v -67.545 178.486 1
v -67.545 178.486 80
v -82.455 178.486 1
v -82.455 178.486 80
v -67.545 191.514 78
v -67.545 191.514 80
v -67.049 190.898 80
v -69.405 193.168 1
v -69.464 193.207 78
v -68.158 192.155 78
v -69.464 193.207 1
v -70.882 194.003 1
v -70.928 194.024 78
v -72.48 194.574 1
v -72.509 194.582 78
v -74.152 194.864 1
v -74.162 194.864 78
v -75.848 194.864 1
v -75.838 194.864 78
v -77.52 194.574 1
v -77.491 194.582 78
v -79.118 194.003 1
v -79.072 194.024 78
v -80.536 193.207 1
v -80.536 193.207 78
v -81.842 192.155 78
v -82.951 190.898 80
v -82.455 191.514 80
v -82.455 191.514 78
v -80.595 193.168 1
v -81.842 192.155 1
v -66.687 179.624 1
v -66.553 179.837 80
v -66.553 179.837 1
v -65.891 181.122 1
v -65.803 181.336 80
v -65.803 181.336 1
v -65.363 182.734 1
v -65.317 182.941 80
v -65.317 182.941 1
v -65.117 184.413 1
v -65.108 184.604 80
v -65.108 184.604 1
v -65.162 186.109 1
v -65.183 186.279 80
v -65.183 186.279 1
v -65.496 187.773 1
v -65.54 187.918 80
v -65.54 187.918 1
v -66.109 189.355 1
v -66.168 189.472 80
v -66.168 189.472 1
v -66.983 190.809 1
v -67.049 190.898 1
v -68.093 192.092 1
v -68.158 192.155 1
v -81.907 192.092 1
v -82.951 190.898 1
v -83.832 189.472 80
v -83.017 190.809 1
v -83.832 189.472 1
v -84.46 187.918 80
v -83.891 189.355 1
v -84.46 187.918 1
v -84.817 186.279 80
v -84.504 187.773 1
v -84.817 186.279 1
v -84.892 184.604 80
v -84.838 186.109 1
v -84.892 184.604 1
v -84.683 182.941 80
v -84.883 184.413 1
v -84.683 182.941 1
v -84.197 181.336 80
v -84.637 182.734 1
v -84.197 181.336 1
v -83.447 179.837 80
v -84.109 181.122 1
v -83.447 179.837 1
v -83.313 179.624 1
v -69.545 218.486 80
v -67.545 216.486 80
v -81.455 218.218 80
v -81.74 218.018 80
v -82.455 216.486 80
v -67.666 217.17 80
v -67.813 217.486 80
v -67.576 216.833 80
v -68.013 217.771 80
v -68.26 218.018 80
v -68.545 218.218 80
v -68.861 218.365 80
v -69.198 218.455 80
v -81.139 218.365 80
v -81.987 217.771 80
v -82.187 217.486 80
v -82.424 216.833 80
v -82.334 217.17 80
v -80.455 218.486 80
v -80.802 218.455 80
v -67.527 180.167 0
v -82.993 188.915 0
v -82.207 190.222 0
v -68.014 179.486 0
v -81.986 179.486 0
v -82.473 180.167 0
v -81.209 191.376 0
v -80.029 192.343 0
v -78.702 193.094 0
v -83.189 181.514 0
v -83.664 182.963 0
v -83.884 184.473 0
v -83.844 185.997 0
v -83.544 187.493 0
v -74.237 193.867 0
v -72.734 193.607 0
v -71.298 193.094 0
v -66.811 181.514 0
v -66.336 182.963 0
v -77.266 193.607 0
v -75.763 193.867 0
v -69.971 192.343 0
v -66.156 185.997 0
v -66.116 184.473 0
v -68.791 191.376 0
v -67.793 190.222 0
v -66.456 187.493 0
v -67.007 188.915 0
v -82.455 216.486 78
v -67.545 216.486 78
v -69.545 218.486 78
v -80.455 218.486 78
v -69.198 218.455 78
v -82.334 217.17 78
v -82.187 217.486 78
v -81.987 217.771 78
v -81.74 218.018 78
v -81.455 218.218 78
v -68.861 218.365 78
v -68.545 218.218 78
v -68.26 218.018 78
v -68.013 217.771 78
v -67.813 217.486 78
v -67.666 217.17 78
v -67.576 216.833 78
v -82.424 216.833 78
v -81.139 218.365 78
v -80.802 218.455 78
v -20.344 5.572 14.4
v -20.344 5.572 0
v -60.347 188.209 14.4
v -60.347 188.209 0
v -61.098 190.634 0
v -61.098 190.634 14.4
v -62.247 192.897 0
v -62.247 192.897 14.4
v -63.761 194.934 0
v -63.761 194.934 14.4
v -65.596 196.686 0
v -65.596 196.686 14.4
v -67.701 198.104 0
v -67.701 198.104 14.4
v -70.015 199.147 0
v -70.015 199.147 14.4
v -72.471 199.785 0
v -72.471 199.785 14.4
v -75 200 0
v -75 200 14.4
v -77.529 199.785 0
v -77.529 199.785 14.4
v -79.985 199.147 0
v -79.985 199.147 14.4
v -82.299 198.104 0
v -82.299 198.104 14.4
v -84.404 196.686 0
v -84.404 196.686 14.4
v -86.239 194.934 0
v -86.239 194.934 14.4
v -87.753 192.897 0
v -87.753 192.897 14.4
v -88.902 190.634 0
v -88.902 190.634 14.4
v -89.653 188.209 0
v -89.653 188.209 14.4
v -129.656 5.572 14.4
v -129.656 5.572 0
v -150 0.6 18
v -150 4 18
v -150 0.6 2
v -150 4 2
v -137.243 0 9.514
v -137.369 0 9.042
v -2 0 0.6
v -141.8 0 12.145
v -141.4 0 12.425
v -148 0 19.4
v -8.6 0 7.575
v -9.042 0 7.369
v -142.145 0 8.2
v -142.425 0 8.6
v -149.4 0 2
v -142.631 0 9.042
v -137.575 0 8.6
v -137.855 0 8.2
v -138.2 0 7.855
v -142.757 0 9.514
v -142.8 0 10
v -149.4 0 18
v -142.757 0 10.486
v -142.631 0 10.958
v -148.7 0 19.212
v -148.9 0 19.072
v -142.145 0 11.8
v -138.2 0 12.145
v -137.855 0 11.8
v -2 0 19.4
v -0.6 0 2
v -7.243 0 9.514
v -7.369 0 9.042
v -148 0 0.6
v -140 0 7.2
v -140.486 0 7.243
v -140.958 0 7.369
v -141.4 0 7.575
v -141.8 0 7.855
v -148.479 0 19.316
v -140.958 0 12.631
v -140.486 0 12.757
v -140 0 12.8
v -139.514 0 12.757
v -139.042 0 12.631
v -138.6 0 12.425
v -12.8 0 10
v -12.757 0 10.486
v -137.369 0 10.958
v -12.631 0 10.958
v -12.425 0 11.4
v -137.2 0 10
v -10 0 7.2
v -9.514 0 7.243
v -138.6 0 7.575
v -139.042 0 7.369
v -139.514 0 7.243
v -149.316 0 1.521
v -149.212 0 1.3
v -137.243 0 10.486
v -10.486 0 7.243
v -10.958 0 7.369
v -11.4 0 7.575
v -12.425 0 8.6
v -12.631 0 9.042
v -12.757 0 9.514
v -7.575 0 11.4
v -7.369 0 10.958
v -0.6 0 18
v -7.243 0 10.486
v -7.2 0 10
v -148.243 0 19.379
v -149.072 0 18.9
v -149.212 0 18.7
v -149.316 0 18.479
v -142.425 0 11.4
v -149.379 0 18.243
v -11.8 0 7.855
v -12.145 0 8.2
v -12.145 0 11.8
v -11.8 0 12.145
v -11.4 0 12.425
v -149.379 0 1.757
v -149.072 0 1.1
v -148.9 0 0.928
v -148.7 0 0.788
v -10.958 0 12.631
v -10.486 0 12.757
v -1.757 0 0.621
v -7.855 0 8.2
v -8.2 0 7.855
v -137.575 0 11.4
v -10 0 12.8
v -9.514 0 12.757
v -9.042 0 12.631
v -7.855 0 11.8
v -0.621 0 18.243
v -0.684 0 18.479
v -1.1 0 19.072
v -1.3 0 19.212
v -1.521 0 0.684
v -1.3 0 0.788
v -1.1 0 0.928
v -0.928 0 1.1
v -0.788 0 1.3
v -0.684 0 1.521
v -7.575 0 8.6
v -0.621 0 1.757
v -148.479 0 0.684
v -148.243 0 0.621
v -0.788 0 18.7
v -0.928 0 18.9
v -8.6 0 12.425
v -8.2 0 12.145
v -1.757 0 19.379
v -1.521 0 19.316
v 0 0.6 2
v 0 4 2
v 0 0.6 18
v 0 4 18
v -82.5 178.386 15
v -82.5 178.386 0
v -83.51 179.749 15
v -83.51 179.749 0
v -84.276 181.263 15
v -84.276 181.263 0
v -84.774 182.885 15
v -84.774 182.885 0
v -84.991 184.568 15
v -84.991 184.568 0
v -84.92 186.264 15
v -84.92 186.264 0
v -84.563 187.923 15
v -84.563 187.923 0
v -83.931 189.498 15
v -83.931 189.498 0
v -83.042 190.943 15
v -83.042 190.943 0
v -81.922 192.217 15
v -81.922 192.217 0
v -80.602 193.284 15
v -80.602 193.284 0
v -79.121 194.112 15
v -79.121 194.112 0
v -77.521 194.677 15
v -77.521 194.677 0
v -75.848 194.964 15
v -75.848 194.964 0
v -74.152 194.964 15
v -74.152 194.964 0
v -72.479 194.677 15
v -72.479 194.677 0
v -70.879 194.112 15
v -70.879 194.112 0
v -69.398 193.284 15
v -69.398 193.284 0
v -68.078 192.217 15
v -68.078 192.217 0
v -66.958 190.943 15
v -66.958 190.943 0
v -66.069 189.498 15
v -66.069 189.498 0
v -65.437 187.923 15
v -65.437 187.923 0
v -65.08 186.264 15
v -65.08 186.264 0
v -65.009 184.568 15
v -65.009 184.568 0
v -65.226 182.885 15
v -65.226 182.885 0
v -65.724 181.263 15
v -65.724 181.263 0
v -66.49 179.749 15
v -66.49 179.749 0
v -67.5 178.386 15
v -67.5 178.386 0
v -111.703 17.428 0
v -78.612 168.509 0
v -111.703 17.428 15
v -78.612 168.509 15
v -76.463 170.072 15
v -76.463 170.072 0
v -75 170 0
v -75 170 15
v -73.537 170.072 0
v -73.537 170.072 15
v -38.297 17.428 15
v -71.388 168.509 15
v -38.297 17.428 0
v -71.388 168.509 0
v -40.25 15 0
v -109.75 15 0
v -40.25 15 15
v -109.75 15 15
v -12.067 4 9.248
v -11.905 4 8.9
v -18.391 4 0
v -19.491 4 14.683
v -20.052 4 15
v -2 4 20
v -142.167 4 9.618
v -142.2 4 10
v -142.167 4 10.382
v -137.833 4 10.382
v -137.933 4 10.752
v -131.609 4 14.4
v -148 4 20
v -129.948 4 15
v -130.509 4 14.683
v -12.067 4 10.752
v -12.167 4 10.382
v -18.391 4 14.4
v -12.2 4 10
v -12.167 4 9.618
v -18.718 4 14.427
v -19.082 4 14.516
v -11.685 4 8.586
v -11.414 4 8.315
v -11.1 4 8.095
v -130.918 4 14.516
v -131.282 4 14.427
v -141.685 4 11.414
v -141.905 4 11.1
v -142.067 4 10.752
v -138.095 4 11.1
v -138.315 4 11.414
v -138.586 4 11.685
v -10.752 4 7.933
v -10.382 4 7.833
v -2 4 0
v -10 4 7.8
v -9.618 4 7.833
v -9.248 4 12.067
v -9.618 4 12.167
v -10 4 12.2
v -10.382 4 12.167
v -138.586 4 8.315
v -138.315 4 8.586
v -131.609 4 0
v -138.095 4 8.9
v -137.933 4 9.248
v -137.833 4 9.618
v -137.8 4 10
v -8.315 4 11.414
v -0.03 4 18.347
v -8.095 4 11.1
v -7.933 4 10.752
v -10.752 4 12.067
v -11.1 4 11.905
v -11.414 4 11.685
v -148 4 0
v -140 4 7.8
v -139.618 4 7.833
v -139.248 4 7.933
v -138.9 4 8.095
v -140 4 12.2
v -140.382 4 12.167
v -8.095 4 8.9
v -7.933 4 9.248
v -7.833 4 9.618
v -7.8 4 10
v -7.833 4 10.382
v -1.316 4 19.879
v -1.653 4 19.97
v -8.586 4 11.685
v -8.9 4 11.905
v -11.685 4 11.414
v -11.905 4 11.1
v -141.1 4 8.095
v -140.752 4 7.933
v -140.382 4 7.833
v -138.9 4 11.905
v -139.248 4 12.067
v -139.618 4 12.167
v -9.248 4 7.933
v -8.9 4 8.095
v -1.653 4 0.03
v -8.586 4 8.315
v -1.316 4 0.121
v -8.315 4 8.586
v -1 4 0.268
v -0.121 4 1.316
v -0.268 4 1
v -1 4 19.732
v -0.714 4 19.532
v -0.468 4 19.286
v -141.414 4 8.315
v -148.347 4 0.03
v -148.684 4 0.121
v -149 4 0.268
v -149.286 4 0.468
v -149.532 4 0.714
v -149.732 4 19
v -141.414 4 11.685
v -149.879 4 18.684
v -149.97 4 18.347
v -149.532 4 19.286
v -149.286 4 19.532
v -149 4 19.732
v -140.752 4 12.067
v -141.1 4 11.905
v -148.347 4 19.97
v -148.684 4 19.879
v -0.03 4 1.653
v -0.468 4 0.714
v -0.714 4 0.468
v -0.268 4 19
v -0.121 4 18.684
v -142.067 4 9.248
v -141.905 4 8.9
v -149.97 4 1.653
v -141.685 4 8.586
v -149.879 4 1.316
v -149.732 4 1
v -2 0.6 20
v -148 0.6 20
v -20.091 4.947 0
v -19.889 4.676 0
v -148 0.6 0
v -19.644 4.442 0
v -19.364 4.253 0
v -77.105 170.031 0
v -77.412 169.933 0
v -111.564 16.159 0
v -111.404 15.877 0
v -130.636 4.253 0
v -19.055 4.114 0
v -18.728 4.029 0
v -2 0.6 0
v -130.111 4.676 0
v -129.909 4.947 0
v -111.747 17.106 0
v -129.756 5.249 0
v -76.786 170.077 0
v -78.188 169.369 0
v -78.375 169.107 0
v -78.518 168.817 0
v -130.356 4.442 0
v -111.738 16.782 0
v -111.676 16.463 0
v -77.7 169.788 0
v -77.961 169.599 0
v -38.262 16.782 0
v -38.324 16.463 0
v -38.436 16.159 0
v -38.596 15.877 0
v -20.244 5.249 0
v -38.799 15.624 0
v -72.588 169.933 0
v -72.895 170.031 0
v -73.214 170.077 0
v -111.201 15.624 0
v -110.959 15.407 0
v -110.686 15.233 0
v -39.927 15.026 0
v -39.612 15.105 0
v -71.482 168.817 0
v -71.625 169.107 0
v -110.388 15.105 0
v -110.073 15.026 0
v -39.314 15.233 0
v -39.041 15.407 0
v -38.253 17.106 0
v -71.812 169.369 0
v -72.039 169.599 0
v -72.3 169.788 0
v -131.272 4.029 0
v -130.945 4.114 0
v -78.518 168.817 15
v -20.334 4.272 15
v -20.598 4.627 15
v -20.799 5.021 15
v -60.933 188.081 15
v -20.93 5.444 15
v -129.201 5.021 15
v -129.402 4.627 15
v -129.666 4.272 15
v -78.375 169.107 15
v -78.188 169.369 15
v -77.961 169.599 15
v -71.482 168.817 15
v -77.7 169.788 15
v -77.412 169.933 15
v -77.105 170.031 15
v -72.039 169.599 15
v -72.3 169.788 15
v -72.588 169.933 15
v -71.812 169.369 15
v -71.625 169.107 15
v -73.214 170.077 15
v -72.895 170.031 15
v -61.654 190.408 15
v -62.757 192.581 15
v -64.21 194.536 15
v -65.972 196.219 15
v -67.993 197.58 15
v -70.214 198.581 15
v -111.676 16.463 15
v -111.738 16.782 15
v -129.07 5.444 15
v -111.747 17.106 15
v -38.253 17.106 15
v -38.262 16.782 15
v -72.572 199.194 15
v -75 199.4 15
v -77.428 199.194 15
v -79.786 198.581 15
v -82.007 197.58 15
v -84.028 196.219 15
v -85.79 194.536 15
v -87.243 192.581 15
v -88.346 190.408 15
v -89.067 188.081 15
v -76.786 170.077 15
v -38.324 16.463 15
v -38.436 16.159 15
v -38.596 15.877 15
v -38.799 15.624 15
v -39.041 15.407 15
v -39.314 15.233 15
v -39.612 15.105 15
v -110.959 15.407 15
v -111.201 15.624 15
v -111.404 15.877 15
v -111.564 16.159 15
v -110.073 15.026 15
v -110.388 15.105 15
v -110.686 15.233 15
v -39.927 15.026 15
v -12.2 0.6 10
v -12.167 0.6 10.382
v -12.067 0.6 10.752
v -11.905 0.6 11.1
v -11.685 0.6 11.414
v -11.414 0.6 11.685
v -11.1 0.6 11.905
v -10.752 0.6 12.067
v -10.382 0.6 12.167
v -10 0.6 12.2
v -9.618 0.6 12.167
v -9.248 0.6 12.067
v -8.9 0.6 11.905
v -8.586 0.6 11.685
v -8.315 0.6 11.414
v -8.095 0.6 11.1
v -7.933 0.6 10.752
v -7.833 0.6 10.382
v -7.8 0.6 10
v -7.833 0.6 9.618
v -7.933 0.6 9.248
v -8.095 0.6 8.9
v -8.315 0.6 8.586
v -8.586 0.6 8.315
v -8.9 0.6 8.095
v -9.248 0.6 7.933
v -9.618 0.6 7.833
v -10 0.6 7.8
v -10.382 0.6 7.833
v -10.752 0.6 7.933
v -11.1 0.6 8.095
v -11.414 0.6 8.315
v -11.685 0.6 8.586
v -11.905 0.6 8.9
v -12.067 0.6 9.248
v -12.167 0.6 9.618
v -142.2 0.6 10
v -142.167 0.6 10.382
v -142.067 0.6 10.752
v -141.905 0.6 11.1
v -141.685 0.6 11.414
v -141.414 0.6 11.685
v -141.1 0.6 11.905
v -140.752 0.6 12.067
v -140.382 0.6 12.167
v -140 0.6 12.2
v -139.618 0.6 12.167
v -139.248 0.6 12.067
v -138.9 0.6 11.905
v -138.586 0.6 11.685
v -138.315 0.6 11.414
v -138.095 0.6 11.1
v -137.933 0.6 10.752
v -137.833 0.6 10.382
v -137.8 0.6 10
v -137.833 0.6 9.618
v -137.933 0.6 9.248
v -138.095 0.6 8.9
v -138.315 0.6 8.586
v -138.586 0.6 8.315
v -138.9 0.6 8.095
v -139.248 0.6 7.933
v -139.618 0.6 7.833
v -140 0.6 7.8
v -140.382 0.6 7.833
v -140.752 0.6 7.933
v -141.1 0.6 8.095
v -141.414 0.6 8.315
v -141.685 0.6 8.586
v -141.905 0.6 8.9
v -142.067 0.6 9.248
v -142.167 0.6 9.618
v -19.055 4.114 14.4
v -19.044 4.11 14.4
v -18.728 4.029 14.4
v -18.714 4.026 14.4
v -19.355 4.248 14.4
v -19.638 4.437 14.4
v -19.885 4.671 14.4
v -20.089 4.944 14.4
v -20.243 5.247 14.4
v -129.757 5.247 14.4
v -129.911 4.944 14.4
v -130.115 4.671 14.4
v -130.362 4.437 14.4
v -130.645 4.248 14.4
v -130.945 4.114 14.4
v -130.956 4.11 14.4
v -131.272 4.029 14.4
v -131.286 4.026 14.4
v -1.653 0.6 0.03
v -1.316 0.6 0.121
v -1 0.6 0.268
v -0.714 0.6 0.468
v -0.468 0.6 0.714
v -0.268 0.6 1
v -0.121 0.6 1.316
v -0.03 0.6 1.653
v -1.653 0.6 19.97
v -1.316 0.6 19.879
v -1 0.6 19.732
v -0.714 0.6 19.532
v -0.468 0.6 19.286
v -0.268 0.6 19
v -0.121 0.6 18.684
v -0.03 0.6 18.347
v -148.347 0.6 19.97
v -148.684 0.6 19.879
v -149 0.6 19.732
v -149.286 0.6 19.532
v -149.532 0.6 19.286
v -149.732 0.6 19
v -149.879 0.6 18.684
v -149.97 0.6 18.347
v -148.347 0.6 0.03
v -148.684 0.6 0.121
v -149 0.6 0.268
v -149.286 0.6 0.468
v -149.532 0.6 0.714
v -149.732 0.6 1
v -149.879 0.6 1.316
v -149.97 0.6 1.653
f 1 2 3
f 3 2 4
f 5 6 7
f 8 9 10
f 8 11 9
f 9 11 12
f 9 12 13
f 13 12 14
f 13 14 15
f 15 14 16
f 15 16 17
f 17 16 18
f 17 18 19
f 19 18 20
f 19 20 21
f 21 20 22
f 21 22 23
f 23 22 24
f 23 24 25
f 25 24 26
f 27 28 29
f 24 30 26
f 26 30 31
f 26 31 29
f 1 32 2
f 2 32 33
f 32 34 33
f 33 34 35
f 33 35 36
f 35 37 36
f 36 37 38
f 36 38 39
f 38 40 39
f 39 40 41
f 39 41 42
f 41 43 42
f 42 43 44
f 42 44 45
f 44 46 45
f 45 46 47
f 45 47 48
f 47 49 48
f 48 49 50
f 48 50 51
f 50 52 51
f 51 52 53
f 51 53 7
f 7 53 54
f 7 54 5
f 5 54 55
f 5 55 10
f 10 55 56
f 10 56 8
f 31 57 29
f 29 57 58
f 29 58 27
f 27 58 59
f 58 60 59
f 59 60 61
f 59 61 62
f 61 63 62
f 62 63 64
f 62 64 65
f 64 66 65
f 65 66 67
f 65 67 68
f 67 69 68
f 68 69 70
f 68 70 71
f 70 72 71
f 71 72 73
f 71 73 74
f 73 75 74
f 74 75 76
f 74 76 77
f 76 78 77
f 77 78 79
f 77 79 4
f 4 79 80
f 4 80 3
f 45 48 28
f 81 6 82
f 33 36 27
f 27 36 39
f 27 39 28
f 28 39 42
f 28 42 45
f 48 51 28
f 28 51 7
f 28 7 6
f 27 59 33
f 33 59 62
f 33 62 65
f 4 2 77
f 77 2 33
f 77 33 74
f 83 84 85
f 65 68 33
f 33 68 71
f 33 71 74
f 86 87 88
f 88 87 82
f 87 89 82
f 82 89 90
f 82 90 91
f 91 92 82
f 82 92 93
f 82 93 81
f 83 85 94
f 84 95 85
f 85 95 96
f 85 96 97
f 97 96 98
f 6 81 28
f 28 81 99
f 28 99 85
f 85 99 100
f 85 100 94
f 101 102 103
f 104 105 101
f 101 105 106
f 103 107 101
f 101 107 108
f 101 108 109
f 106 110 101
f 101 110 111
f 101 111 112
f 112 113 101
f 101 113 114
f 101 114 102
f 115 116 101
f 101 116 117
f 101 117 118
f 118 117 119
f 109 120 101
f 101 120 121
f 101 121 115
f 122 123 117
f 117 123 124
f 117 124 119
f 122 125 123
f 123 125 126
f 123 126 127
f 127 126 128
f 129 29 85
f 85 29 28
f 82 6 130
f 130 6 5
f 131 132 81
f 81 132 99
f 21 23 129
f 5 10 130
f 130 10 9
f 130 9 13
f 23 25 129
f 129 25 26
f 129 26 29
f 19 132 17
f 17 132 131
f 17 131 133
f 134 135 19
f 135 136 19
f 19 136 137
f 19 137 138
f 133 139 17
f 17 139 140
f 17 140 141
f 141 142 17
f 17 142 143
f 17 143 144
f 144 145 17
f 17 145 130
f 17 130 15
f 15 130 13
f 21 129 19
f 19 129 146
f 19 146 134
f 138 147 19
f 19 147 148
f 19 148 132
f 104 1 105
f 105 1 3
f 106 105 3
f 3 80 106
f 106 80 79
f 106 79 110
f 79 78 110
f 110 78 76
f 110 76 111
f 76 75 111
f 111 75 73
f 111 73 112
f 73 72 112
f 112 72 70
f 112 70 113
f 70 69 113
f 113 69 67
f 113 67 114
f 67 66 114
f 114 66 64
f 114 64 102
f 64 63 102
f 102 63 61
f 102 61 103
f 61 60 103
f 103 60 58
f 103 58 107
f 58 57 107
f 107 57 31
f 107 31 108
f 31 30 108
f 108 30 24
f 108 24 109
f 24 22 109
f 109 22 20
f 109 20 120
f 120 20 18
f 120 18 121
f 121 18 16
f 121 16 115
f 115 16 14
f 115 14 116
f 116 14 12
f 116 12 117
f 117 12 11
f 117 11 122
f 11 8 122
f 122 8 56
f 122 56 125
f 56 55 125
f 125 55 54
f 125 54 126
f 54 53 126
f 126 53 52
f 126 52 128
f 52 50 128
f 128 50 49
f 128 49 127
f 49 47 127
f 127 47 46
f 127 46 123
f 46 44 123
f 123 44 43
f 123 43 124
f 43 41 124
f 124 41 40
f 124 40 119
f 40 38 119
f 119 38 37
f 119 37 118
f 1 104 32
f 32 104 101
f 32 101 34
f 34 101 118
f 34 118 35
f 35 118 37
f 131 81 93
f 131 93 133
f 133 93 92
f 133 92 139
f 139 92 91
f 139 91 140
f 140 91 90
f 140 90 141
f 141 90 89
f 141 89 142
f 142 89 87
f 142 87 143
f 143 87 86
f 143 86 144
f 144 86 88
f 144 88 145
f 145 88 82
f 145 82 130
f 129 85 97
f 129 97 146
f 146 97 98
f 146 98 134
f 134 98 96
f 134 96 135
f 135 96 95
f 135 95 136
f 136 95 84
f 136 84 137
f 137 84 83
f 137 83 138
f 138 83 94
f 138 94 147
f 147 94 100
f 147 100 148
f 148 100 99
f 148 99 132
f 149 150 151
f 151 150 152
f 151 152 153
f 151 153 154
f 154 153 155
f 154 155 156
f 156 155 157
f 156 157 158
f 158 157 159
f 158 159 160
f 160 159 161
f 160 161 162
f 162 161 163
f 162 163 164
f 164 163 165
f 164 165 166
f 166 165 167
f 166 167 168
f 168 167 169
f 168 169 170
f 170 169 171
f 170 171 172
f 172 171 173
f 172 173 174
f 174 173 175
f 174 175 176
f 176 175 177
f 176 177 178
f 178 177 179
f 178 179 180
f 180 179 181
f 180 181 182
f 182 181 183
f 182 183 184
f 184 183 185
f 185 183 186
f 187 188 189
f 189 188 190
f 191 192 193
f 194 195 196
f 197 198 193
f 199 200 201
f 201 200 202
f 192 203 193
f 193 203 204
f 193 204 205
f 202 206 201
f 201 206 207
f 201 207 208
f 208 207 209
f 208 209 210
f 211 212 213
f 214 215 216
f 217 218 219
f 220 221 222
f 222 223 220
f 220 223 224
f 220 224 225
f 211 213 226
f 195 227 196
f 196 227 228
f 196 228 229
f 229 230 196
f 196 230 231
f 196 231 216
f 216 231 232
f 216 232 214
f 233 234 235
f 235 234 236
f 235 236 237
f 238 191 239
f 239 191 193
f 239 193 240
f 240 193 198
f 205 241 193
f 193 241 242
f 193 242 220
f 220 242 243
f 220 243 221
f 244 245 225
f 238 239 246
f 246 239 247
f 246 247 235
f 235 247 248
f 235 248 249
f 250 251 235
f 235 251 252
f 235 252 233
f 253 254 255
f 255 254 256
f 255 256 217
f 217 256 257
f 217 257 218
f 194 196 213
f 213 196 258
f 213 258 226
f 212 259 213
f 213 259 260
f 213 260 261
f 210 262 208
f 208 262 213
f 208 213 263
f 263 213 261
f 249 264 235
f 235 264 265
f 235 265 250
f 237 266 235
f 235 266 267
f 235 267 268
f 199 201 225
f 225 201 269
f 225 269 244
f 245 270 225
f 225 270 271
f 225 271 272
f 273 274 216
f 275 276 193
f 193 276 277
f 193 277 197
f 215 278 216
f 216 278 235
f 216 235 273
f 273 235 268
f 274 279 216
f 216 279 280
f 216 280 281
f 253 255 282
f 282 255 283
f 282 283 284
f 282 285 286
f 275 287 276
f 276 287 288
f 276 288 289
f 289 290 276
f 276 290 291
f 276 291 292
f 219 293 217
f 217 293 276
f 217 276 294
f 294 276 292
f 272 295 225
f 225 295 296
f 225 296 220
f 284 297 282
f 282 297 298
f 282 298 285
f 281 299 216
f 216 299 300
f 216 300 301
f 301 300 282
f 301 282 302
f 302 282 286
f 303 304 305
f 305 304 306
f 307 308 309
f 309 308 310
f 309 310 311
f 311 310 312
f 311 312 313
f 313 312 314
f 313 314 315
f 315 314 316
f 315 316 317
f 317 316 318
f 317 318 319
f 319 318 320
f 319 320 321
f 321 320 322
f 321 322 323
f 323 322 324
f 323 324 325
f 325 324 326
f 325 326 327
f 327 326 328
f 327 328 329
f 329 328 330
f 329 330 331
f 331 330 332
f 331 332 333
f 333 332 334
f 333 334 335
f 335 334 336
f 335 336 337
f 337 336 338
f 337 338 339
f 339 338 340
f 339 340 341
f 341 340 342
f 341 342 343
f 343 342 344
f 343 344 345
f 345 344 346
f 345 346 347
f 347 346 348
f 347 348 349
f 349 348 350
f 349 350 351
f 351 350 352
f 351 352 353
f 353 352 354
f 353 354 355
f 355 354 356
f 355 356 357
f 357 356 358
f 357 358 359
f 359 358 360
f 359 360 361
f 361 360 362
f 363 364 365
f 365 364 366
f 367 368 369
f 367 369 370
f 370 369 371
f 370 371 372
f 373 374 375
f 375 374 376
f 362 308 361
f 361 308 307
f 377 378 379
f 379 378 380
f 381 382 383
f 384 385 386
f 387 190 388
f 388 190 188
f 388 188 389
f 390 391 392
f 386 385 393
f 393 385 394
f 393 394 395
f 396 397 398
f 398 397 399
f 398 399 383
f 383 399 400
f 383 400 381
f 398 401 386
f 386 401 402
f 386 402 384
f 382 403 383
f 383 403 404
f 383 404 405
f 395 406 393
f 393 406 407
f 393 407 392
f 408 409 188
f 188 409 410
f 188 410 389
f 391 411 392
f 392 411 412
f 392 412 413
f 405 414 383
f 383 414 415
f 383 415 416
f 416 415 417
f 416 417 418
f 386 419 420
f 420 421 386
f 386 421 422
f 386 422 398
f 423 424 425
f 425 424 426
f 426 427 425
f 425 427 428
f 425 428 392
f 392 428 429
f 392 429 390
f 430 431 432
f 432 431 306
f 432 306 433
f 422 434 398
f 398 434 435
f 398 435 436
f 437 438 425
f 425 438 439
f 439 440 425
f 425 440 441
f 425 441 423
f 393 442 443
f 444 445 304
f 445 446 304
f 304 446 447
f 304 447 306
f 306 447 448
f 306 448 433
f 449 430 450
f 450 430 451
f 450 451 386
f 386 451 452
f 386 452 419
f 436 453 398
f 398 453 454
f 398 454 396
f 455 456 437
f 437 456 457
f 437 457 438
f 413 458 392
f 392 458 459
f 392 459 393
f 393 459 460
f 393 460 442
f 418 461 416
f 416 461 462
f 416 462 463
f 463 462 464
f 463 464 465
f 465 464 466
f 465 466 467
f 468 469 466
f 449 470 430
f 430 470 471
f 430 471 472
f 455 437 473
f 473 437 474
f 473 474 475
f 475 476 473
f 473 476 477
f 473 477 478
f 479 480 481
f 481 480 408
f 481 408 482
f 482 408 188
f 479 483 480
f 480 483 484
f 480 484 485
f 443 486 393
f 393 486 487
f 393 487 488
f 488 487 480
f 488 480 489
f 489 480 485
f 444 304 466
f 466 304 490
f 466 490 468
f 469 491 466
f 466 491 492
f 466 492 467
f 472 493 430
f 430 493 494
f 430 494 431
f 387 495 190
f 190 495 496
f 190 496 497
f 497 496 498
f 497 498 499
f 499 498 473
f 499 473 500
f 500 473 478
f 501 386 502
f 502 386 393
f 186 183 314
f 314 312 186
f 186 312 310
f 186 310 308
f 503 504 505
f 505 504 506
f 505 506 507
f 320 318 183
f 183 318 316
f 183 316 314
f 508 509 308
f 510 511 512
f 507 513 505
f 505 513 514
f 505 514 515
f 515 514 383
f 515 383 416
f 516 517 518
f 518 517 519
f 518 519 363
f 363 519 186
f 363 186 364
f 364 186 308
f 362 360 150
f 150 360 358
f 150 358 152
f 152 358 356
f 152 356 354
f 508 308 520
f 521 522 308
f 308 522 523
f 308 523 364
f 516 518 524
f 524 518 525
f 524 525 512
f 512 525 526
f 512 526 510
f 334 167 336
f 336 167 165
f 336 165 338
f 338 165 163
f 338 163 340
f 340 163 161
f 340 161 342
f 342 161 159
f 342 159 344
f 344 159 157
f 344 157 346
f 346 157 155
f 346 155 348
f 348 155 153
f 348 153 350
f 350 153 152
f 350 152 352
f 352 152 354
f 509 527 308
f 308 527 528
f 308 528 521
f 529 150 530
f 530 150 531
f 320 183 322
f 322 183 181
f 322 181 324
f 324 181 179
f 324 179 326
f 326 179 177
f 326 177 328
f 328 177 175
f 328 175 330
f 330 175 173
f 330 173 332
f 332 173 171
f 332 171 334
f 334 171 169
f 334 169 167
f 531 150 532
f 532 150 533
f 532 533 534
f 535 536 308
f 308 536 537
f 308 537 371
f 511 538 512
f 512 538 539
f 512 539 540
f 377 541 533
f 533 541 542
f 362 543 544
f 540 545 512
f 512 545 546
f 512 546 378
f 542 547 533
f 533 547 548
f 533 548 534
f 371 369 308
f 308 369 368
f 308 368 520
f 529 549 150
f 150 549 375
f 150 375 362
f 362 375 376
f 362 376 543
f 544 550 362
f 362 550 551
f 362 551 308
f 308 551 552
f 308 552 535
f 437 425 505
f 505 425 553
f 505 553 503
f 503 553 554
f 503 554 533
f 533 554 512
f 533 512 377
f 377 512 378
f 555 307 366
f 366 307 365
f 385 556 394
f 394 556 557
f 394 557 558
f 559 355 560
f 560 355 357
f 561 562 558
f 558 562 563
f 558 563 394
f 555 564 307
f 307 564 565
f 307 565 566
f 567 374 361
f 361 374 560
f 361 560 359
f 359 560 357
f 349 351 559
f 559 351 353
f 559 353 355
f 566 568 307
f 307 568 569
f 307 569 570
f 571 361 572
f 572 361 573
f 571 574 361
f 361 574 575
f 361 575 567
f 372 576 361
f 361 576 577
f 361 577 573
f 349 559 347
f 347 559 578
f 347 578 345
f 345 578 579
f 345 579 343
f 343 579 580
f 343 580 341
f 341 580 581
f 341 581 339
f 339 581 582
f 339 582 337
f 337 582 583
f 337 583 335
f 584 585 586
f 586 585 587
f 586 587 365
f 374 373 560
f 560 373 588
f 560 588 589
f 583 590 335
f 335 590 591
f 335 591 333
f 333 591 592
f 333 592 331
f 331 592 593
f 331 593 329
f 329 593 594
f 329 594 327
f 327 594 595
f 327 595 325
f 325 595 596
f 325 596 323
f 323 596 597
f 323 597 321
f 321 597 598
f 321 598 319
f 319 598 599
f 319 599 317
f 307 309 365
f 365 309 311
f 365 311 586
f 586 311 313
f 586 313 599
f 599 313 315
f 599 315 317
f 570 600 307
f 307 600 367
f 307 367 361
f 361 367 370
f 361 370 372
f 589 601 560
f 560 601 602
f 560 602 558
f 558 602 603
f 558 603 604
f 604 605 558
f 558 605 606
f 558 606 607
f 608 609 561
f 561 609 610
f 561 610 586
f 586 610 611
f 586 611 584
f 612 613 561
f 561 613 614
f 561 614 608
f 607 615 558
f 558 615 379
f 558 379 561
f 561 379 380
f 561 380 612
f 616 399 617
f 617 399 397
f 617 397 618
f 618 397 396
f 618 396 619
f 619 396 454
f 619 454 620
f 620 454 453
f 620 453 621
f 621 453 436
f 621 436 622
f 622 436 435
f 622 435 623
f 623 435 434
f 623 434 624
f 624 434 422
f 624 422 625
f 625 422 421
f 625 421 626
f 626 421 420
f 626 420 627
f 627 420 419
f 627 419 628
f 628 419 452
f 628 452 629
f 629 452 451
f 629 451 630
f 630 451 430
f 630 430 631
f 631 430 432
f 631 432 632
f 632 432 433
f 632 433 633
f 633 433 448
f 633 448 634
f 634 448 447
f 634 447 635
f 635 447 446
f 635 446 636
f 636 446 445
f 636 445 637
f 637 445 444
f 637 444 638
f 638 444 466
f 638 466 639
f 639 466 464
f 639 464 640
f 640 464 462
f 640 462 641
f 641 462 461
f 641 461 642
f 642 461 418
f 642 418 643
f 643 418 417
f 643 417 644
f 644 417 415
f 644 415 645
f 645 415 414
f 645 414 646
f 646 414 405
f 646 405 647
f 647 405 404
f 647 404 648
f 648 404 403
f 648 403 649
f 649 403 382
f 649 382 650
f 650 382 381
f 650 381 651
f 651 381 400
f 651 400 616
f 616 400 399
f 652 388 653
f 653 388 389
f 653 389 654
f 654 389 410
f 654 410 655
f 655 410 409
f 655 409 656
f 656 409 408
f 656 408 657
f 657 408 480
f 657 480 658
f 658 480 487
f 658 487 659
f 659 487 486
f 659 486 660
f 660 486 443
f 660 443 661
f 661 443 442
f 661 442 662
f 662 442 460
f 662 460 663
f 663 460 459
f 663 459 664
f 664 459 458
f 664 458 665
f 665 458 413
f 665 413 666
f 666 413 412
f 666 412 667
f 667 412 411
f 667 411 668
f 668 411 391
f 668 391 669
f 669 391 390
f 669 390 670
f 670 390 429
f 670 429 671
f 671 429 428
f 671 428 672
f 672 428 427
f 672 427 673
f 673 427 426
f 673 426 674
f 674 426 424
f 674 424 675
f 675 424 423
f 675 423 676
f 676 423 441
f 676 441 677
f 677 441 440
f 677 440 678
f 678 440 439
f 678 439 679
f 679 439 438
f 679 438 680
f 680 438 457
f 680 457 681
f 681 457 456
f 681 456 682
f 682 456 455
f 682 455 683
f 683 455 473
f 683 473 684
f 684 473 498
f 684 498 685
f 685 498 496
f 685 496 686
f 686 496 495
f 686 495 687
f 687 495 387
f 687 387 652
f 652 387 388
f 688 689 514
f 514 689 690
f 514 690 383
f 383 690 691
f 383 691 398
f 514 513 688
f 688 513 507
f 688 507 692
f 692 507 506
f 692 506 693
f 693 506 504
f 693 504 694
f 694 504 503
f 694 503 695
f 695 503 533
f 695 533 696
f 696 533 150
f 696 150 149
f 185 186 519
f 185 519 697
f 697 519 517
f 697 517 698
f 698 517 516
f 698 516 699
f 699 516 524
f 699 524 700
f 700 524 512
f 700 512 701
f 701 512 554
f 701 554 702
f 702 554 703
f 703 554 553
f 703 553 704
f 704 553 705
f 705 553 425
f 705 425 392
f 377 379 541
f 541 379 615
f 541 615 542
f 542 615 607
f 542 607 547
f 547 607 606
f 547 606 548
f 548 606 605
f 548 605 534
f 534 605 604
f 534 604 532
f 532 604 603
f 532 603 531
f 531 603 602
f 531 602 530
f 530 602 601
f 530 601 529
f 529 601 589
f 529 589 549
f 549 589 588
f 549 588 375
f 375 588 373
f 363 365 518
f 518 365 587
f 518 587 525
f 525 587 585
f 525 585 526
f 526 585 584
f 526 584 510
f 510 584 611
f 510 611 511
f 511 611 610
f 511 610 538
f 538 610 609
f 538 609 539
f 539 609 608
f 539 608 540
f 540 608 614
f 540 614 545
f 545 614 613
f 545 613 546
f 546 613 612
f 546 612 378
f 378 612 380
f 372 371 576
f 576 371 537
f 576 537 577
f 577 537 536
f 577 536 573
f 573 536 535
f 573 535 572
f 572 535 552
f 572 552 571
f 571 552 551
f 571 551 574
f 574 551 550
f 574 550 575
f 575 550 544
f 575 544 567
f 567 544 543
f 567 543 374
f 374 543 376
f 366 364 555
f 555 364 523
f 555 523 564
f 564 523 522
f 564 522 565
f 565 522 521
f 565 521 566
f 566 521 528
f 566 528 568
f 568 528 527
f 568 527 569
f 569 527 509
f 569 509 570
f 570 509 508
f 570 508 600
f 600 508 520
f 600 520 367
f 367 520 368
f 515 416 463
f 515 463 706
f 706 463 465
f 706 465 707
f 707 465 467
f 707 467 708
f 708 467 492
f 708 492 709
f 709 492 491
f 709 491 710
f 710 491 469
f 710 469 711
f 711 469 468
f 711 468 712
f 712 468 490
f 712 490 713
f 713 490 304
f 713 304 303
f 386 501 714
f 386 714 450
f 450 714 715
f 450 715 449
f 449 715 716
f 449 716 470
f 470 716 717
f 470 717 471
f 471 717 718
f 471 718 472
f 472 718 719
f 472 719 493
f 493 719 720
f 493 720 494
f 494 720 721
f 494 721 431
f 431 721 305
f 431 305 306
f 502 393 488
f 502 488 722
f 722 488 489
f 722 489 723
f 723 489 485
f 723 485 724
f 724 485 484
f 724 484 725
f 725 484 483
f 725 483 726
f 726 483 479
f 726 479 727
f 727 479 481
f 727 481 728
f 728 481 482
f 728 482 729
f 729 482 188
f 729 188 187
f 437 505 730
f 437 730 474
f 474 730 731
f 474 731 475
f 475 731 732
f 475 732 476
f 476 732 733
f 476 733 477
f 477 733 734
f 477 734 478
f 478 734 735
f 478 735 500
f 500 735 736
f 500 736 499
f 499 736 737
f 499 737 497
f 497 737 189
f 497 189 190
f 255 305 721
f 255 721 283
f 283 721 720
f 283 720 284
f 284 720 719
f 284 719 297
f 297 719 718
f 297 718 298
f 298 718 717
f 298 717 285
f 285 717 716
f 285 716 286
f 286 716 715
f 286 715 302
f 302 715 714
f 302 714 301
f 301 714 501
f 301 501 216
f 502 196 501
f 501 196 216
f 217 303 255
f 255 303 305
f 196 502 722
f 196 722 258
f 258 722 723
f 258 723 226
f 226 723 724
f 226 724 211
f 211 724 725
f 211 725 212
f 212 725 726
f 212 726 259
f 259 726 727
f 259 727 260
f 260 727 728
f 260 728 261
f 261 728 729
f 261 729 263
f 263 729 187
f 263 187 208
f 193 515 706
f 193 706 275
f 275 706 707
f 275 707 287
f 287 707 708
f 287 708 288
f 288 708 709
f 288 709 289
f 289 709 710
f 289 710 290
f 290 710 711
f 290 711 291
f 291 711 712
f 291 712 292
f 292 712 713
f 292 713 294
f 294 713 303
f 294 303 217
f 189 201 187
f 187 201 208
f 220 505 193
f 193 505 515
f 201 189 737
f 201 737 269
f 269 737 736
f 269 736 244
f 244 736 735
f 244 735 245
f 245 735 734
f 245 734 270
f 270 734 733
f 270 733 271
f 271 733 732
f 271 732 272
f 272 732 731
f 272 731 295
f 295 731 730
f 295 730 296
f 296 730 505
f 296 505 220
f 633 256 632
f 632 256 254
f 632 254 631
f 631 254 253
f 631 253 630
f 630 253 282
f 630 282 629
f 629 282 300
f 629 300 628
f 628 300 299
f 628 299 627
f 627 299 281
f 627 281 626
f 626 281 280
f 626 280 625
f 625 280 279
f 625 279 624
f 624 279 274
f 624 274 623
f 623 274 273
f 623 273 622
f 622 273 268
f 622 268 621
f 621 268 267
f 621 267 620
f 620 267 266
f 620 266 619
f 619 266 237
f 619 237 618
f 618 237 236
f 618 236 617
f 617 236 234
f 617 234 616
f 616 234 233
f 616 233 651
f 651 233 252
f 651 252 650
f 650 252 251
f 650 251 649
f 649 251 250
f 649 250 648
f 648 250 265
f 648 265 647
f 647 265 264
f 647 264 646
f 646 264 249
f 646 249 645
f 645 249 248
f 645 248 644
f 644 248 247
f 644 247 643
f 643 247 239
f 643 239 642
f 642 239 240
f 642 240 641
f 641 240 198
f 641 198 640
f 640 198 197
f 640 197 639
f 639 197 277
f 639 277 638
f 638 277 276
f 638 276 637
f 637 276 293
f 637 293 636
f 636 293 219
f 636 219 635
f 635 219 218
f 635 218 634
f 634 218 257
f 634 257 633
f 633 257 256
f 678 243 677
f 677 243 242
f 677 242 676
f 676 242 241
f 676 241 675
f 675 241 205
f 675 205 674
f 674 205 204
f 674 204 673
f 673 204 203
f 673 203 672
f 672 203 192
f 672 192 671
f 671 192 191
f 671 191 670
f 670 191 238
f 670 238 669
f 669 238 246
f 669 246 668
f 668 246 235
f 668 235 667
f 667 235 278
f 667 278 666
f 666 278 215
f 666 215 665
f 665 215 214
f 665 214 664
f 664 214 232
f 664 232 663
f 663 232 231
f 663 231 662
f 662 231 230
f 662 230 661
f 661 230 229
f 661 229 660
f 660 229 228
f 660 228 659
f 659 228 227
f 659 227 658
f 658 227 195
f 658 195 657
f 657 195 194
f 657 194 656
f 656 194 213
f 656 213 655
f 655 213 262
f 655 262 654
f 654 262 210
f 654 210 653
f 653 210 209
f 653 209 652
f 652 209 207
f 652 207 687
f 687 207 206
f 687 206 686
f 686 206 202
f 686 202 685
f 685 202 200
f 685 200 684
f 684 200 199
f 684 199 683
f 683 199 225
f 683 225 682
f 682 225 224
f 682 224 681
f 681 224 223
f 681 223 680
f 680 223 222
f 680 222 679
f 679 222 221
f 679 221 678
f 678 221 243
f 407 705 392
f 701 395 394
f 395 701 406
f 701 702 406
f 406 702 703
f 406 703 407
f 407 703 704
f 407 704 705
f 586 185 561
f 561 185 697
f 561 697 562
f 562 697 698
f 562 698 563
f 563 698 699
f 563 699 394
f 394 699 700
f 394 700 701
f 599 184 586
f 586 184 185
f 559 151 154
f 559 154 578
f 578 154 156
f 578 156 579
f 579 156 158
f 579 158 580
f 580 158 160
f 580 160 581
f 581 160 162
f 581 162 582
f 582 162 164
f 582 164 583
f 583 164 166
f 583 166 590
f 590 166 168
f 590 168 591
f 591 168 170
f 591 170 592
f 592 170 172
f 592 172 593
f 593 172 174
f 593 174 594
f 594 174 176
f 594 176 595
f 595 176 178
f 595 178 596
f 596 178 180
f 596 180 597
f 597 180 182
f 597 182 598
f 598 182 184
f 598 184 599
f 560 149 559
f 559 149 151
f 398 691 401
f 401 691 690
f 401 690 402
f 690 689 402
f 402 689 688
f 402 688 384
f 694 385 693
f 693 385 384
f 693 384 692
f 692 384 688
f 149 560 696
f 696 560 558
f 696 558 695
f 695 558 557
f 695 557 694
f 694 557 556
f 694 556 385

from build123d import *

# Parameters (mm, degrees)
BOSS_EXTRUDE1_DEPTH = 20
SKETCH2_W           = 110
SKETCH2_H           = 232.935125723
CUT_EXTRUDE1_DEPTH  = 5
BOSS_EXTRUDE2_DEPTH = 80
SKETCH3_W           = 14.909443404
SKETCH3_H           = 40
BOSS_EXTRUDE3_DEPTH = 2
SKETCH4_R           = 2.2
CUT_EXTRUDE2_DEPTH  = 4
FILLET1_R           = 2
CHAMFER1_SIZE       = 0.6
CHAMFER2_SIZE       = 1
FILLET2_R           = 2
CHAMFER3_SIZE       = 0.6


with BuildPart() as part:
    # Sketch1 → Boss-Extrude1 (new body)
    with BuildSketch(Plane.XY):
        with BuildLine():
            Line((-60.347356399, 188.20936684), (-20, 4))
            Line((-20, 4), (0, 4))
            Line((0, 4), (0, 0))
            Line((0, 0), (-150, 0))
            Line((-150, 0), (-150, 4))
            Line((-150, 4), (-130, 4))
            Line((-130, 4), (-89.652643601, 188.20936684))
            ThreePointArc((-89.652643601, 188.20936684), (-75, 200), (-60.347356399, 188.20936684))
        make_face()
        with BuildLine():
            Line((-112.235080417, 15), (-78.20936684, 170.347356399))
            ThreePointArc((-78.20936684, 170.347356399), (-75, 170), (-71.79063316, 170.347356399))
            Line((-71.79063316, 170.347356399), (-37.764919583, 15))
            Line((-37.764919583, 15), (-112.235080417, 15))
        make_face(mode=Mode.SUBTRACT)
        with BuildLine():
            ThreePointArc((-67.5, 178.385621722), (-75, 195), (-82.5, 178.385621722))
            Line((-82.5, 178.385621722), (-67.5, 178.385621722))
        make_face(mode=Mode.SUBTRACT)
    extrude(amount=BOSS_EXTRUDE1_DEPTH)

    # Sketch2 → Cut-Extrude1 (cut)
    with BuildSketch(Plane.XY.offset(20)):
        with Locations((-75, 120.467562862)):
            Rectangle(SKETCH2_W, SKETCH2_H)
    extrude(amount=-CUT_EXTRUDE1_DEPTH, mode=Mode.SUBTRACT)

    # Sketch4 → Cut-Extrude2 (cut)
    with BuildSketch(Plane(origin=(0, 4, 0), x_dir=(1, 0, 0), z_dir=(0, 1, 0))):
        with Locations(Location((-140, -10, 0), (0, 0, 180))):
            Circle(SKETCH4_R)
        with Locations(Location((-10, -10, 0), (0, 0, 180))):
            Circle(SKETCH4_R)
    extrude(amount=-CUT_EXTRUDE2_DEPTH, mode=Mode.SUBTRACT)

    # Fillet1
    fillet1_edges = [part.edges().sort_by_distance(p)[0] for p in [
        (0, 2, 0),
        (-150, 2, 0),
        (-20, 4, 7.5),
        (-112.235080417, 15, 7.5),
        (-37.764919583, 15, 7.5),
        (-71.79063316, 170.347356399, 7.5),
        (-78.20936684, 170.347356399, 7.5),
        (-130, 4, 7.5),
        (-150, 2, 20),
        (0, 2, 20),
    ]]
    fillet(fillet1_edges, radius=FILLET1_R)

    # Chamfer1
    chamfer1_edges = [part.edges().sort_by_distance(p)[0] for p in [
        (0, 0, 10),
        (-75, 0, 0),
        (-75, 0, 20),
        (-150, 0, 10),
        (-149.414213562, 0, 0.585786438),
        (-149.414213562, 0, 19.414213562),
        (-0.585786438, 0, 19.414213562),
        (-0.585786438, 0, 0.585786438),
        (-137.8, 0, 10),
        (-7.8, 0, 10),
    ]]
    chamfer(chamfer1_edges, length=CHAMFER1_SIZE)

    # Chamfer3
    # the kernel refuses this chamfer: 0.6 mm, written as the material it takes off along each edge
    with BuildSketch(Plane(origin=(-18.390647656, 6, 15), x_dir=(-0.976842906707418, -0.21395778933098608, 0), z_dir=(-0.21395778933098608, 0.976842906707418, 0))) as chamfer3_piece_1_section:
        Polygon((2, -CHAMFER3_SIZE), (2 + CHAMFER3_SIZE, 0), (2, 0), align=None)
    chamfer3_piece_1 = revolve(axis=Axis((-18.390647656, 6, 15), (0, 0, 1)), revolution_arc=121.862799831, mode=Mode.PRIVATE)
    chamfer3_piece_1 = split(chamfer3_piece_1, bisect_by=Plane(origin=(-19.694656752, 4, 14.765716597), z_dir=(0, 1, 0)), keep=Keep.TOP, mode=Mode.PRIVATE)
    add(chamfer3_piece_1, mode=Mode.SUBTRACT)
    with BuildSketch(Plane(origin=(-131.609352344, 6, 15), x_dir=(-0.697380161967856, -0.716701409021698, 0), z_dir=(-0.716701409021698, 0.697380161967856, 0))) as chamfer3_piece_2_section:
        Polygon((2 + CHAMFER3_SIZE, 0), (2, -CHAMFER3_SIZE), (2, 0), align=None)
    chamfer3_piece_2 = revolve(axis=Axis((-131.609352344, 6, 15), (0, 0, 1)), revolution_arc=121.862799831, mode=Mode.PRIVATE)
    chamfer3_piece_2 = split(chamfer3_piece_2, bisect_by=Plane(origin=(-130.305343248, 4, 14.765716597), z_dir=(0, 1, 0)), keep=Keep.TOP, mode=Mode.PRIVATE)
    add(chamfer3_piece_2, mode=Mode.SUBTRACT)
    with BuildSketch(Plane(origin=(-129.65566653, 5.572084421, 15), x_dir=(0.9764735789240729, -0.21387689550914105, 0.02749587661058188), z_dir=(0.21395778933098342, 0.9768429067074187, 0)), Plane(origin=(-60.347356399, 188.20936684, 15), x_dir=(-0.9764735789240728, -0.21387689550914124, 0.027495876610587368), z_dir=(0.21395778933098364, -0.9768429067074186, 0))) as chamfer3_piece_3:
        Polygon((CHAMFER3_SIZE * 0.999621916911, CHAMFER3_SIZE * 0.0274958766106), (-CHAMFER3_SIZE * 0.0274958766106, CHAMFER3_SIZE * 0.999621916911), (0, 0), align=None)
    extrude(amount=186.966892184, mode=Mode.SUBTRACT)
    with BuildSketch(Plane(origin=(-75, 185, 15), x_dir=(-0.9768429067074185, 0.213957789330984, 0), z_dir=(-0.213957789330984, -0.9768429067074185, 0))) as chamfer3_piece_4:
        Polygon((15 - CHAMFER3_SIZE, 0), (15, CHAMFER3_SIZE), (15, 0), align=None)
    revolve(axis=Axis((-75, 185, 15), (0, 0, -1)), revolution_arc=155.291219427, mode=Mode.SUBTRACT)


with BuildPart() as body_2:
    # Sketch1<3> → Boss-Extrude2 (new body)
    with BuildSketch(Plane.XY):
        with BuildLine():
            Line((-82.454721702, 178.485621722), (-67.545278298, 178.485621722))
            ThreePointArc((-67.545278298, 178.485621722), (-75, 194.9), (-82.454721702, 178.485621722))
        make_face()
    extrude(amount=BOSS_EXTRUDE2_DEPTH)

    # Sketch3 → Boss-Extrude3 (add)
    with BuildSketch(Plane.XY.offset(80)):
        with Locations((-75, 198.485621722)):
            Rectangle(SKETCH3_W, SKETCH3_H)
    extrude(amount=-BOSS_EXTRUDE3_DEPTH)

    # Chamfer2
    chamfer2_edges = [body_2.edges().sort_by_distance(p)[0] for p in [
        (-75, 194.9, 0),
        (-75, 178.485621722, 0),
    ]]
    chamfer(chamfer2_edges, length=CHAMFER2_SIZE)

    # Fillet2
    fillet2_edges = [body_2.edges().sort_by_distance(p)[0] for p in [
        (-67.545278298, 218.485621722, 79),
        (-82.454721702, 218.485621722, 79),
    ]]
    fillet(fillet2_edges, radius=FILLET2_R)


solid = Compound([part.part, body_2.part])
